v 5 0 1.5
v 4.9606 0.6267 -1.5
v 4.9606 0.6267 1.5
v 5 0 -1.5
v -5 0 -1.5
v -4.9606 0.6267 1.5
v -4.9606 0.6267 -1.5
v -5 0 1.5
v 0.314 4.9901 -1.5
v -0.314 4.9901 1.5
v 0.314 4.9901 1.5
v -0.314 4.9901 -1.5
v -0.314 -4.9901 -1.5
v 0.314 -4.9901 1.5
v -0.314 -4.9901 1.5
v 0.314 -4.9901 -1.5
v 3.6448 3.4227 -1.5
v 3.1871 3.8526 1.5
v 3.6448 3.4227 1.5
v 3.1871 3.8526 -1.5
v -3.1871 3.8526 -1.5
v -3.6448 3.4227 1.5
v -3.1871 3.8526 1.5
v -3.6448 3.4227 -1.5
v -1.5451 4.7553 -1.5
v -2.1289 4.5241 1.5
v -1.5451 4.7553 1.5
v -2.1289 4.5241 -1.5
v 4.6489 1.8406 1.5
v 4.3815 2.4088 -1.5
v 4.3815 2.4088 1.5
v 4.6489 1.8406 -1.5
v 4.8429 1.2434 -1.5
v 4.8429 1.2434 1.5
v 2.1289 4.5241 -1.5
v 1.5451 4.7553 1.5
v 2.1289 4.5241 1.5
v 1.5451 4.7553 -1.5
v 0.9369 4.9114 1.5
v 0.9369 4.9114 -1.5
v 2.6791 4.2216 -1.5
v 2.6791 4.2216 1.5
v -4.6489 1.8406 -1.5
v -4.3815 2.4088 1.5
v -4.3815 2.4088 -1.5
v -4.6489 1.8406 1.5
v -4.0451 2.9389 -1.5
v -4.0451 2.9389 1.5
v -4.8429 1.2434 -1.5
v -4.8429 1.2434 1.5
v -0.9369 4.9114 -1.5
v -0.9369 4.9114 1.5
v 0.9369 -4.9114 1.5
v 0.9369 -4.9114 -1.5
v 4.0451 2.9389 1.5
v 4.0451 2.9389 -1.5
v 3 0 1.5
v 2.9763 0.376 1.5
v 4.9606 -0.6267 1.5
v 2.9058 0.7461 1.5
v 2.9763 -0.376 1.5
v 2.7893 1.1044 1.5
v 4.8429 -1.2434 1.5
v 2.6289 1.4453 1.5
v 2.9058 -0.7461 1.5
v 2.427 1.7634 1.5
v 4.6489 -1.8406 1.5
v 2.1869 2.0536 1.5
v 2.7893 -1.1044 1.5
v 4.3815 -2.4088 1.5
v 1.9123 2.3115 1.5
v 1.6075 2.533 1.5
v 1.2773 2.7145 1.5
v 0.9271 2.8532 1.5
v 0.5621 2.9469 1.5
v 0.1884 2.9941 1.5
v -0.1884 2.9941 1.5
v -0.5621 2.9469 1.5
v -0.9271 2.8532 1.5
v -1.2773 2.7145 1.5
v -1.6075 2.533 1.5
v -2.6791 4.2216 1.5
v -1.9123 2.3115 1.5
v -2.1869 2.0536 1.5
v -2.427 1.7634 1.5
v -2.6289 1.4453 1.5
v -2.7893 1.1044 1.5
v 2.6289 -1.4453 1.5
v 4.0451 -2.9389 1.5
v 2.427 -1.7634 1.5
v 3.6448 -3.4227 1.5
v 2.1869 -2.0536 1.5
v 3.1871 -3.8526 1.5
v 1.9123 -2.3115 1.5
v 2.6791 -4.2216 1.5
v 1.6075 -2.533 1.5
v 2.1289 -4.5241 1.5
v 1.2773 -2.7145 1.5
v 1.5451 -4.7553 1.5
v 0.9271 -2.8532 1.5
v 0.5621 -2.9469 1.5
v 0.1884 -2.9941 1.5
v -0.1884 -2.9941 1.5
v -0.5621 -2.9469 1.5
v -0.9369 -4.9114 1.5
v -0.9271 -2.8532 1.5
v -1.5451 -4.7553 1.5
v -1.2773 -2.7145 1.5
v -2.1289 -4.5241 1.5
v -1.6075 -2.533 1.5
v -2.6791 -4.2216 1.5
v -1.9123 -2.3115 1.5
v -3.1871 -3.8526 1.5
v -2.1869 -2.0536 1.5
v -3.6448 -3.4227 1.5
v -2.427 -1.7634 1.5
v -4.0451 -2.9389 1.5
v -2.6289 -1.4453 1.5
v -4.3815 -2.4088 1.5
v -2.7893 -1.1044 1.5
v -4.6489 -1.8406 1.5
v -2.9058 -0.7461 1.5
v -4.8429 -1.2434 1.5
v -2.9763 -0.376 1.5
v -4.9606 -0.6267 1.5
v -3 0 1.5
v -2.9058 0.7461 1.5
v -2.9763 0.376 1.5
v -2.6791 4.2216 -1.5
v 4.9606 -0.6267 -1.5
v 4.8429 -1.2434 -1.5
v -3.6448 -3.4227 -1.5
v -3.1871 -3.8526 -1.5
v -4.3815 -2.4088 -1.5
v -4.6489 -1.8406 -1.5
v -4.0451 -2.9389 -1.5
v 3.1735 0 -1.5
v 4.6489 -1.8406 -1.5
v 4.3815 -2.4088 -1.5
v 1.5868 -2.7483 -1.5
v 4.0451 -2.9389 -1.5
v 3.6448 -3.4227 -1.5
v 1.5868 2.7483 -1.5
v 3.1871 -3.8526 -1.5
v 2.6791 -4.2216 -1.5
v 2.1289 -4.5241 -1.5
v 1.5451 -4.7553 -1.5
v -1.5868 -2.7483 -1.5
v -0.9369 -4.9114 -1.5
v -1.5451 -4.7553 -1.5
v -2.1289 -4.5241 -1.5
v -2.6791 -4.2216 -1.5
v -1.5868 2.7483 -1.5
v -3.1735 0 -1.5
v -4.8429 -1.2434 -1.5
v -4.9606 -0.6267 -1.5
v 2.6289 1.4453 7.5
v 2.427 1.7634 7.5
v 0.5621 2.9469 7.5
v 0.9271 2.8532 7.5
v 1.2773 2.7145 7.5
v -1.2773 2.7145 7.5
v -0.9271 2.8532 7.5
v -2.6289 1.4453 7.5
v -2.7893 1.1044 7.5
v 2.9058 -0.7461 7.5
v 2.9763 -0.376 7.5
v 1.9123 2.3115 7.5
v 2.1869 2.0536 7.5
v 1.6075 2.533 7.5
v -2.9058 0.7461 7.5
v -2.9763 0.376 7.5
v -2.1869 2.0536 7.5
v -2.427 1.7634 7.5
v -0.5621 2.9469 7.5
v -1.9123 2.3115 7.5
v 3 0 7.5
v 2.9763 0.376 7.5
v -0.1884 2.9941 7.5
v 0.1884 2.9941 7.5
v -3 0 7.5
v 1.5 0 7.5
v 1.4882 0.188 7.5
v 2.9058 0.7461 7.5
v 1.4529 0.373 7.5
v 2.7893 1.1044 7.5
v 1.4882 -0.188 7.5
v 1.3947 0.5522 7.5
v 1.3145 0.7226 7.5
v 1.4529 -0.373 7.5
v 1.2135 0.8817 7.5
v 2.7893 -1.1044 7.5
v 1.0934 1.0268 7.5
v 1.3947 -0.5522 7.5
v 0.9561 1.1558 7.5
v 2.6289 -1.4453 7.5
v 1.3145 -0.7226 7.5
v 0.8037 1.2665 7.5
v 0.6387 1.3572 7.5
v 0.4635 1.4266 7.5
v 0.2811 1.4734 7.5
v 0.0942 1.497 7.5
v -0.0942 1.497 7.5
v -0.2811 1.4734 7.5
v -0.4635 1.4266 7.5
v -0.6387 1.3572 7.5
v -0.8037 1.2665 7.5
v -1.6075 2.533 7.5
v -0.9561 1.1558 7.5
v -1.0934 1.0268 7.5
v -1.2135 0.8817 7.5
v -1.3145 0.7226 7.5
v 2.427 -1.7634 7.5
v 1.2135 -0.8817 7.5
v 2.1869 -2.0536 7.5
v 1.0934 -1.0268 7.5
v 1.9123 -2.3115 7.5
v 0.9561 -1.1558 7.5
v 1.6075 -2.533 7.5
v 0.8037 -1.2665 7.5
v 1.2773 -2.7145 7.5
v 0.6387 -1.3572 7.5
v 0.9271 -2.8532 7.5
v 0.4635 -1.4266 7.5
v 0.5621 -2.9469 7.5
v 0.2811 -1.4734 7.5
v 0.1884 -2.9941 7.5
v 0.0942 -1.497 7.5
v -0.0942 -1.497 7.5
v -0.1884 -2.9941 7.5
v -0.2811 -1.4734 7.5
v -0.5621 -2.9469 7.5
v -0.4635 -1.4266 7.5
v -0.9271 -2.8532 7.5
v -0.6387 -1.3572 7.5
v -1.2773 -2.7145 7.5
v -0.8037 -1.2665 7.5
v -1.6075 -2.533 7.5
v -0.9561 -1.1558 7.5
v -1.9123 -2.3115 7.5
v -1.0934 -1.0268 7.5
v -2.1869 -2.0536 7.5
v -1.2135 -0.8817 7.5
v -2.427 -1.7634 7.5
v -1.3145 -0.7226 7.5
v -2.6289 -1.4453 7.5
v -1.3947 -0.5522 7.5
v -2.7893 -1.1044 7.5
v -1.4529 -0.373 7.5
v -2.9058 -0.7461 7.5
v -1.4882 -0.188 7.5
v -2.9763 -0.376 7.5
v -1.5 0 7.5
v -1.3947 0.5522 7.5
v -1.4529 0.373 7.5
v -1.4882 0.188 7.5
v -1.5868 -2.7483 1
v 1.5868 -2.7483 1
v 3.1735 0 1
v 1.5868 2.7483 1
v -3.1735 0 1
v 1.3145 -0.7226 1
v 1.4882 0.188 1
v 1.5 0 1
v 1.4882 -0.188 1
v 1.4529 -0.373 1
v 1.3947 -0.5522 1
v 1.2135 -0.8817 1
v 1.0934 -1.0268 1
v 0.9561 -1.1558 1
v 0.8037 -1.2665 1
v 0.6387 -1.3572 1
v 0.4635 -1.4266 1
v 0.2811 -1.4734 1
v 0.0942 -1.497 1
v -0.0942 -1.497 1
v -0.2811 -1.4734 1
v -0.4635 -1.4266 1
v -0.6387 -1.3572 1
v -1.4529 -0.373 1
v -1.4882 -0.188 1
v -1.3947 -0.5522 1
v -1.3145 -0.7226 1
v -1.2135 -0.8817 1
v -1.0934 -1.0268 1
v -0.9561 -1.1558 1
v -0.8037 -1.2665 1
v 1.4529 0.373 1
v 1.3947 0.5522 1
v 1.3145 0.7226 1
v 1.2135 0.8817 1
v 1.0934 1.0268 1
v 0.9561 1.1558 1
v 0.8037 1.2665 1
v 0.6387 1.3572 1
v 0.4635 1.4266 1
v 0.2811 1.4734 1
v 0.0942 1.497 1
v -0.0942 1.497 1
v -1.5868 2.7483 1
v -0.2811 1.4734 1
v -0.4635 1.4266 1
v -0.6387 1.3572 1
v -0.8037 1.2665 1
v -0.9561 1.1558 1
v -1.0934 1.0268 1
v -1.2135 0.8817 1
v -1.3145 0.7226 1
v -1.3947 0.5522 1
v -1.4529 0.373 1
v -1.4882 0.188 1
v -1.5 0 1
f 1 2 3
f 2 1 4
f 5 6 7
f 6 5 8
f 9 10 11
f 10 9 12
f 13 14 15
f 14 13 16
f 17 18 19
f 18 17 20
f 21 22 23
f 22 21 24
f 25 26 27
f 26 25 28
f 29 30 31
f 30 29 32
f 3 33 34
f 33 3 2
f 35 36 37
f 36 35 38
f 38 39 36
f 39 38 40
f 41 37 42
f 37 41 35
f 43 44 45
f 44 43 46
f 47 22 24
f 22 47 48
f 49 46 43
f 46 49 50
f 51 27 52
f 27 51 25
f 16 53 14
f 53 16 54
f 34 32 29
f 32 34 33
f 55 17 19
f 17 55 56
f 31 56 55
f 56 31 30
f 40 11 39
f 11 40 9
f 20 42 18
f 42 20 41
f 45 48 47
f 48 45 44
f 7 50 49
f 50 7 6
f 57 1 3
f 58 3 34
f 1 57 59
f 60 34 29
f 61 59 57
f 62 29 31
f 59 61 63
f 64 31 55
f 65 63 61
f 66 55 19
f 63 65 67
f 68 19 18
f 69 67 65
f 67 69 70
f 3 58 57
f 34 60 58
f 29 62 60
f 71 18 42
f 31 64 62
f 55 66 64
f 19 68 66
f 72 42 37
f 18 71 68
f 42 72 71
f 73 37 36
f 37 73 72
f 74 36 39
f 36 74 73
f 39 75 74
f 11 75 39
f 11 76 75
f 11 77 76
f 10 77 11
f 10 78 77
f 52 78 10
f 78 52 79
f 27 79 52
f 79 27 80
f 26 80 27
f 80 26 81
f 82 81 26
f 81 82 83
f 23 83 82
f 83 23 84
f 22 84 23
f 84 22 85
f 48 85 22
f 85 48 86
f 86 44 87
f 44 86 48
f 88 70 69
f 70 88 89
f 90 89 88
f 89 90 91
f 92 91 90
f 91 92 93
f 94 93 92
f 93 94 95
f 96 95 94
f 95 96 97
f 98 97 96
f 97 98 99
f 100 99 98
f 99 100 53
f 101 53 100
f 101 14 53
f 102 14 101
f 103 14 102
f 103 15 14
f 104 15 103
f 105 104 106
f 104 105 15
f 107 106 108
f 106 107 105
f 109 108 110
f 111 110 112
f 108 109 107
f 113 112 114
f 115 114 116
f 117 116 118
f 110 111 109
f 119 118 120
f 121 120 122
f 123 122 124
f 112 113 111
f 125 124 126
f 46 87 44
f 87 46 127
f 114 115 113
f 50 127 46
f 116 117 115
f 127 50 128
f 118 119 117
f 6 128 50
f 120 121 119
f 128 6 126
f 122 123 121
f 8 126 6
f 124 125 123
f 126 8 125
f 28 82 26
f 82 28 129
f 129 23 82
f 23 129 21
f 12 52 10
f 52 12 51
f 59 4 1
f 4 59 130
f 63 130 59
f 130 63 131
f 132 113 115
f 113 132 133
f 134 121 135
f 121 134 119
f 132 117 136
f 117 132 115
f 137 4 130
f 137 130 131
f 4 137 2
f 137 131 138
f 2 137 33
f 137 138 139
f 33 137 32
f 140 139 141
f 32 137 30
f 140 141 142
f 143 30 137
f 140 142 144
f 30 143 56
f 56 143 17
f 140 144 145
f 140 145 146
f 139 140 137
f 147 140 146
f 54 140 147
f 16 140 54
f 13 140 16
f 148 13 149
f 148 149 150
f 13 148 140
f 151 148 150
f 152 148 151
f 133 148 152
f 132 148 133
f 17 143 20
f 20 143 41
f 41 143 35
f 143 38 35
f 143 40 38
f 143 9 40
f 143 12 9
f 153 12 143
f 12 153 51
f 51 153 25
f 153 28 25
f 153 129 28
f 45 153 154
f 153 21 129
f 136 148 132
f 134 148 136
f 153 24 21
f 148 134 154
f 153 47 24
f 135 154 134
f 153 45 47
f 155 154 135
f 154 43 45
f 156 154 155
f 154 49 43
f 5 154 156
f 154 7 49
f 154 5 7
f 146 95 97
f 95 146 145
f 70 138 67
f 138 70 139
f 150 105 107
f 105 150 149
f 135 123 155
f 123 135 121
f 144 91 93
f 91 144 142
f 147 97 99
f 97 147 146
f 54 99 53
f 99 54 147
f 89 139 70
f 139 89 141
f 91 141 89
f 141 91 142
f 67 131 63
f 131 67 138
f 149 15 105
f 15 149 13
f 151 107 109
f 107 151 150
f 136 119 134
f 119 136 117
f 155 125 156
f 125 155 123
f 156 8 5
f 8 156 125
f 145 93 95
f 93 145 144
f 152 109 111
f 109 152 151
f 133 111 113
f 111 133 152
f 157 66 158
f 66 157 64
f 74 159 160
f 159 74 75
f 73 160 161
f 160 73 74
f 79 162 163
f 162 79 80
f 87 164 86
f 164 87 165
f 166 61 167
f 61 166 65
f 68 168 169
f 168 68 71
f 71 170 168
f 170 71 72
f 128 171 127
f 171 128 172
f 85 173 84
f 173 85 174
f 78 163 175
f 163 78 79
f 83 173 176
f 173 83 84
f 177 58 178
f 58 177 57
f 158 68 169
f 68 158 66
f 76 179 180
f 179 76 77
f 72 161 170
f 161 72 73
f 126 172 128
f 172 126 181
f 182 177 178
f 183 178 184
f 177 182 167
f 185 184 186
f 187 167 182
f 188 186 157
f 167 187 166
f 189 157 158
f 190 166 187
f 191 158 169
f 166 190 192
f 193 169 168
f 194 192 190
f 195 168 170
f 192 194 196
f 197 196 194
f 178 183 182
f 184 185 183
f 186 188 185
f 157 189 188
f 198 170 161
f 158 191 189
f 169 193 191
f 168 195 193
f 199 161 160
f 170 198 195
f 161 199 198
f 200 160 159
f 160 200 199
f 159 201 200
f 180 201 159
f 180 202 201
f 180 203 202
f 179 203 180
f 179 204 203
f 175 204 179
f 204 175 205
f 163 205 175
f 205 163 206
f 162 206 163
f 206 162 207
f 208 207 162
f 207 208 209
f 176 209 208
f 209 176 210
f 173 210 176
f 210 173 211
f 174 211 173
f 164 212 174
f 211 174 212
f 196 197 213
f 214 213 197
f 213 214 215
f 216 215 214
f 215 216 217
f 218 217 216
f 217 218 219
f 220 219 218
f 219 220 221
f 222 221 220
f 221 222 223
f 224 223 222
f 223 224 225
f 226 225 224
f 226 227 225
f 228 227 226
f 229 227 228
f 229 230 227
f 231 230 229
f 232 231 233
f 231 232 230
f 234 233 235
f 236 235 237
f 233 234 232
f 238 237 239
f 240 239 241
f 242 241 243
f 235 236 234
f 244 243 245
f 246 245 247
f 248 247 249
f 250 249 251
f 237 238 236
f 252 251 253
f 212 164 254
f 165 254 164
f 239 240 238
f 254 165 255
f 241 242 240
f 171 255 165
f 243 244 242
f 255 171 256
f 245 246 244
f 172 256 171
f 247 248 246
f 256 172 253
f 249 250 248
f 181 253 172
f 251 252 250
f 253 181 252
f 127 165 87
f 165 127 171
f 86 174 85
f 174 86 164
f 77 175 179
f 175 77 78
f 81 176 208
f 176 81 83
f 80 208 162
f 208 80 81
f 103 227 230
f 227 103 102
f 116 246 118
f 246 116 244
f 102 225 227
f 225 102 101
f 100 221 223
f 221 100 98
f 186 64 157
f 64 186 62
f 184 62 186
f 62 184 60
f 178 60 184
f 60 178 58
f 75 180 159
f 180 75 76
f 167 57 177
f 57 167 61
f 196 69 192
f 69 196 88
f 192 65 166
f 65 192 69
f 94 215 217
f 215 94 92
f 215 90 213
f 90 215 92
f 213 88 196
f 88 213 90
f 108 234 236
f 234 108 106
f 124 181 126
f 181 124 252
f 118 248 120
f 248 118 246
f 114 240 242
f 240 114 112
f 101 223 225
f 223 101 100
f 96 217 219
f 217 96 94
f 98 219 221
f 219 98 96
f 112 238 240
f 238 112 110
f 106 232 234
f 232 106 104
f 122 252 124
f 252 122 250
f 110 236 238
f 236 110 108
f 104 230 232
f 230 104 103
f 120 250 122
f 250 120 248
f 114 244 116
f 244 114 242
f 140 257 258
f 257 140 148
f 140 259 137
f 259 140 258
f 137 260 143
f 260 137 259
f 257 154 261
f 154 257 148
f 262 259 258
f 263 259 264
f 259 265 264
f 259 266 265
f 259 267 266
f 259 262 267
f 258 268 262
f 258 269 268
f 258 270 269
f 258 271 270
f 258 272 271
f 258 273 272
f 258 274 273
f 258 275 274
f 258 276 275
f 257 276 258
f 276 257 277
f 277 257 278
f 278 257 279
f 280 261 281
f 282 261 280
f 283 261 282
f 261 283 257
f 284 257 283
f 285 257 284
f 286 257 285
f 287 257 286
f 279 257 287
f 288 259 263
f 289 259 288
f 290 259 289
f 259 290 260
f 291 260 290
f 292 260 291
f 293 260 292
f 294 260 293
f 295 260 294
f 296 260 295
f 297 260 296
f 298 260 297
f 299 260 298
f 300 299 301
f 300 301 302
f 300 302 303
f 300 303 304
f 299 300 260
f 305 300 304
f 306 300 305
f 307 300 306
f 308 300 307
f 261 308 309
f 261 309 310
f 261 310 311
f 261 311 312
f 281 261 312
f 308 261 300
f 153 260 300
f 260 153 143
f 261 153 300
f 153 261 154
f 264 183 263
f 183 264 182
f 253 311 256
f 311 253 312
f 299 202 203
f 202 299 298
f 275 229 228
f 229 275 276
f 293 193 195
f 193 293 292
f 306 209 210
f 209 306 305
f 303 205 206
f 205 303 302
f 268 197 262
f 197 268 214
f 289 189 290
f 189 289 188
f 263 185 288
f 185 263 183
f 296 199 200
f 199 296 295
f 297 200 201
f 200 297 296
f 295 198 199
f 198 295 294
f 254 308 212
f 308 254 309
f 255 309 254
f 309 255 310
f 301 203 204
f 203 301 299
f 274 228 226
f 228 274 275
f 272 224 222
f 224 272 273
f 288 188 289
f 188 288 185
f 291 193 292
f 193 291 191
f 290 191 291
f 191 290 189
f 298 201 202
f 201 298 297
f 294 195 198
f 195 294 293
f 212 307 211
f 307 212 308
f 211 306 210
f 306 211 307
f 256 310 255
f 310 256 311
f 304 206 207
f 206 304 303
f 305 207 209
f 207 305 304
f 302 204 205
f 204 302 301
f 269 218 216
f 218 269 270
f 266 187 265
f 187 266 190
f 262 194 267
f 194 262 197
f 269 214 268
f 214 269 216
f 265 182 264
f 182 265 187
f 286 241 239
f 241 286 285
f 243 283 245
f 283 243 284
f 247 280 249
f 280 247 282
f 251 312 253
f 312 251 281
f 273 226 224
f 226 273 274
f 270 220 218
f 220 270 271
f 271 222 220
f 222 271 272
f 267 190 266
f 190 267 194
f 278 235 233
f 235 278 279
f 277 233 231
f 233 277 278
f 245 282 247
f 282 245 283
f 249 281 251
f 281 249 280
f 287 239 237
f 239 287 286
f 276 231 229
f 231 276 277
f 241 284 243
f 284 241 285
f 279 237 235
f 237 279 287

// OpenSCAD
$fn = 50;


difference() {
	union() {
		translate(v = [0, 0, -1.5000000000]) {
			cylinder(h = 3, r = 5.0000000000);
		}
		translate(v = [0, 0, -1.5000000000]) {
			cylinder(h = 9, r = 3.0000000000);
		}
	}
	union() {
		translate(v = [0, 0, -1.5000000000]) {
			rotate(a = [0, 0, 0]) {
				difference() {
					union() {
						linear_extrude(height = 2.5000000000) {
							polygon(points = [[3.1735000000, 0.0000000000], [1.5867500000, 2.7483316189], [-1.5867500000, 2.7483316189], [-3.1735000000, 0.0000000000], [-1.5867500000, -2.7483316189], [1.5867500000, -2.7483316189]]);
						}
					}
					union();
				}
			}
		}
		translate(v = [0, 0, -50.0000000000]) {
			cylinder(h = 100, r = 1.5000000000);
		}
	}
}
